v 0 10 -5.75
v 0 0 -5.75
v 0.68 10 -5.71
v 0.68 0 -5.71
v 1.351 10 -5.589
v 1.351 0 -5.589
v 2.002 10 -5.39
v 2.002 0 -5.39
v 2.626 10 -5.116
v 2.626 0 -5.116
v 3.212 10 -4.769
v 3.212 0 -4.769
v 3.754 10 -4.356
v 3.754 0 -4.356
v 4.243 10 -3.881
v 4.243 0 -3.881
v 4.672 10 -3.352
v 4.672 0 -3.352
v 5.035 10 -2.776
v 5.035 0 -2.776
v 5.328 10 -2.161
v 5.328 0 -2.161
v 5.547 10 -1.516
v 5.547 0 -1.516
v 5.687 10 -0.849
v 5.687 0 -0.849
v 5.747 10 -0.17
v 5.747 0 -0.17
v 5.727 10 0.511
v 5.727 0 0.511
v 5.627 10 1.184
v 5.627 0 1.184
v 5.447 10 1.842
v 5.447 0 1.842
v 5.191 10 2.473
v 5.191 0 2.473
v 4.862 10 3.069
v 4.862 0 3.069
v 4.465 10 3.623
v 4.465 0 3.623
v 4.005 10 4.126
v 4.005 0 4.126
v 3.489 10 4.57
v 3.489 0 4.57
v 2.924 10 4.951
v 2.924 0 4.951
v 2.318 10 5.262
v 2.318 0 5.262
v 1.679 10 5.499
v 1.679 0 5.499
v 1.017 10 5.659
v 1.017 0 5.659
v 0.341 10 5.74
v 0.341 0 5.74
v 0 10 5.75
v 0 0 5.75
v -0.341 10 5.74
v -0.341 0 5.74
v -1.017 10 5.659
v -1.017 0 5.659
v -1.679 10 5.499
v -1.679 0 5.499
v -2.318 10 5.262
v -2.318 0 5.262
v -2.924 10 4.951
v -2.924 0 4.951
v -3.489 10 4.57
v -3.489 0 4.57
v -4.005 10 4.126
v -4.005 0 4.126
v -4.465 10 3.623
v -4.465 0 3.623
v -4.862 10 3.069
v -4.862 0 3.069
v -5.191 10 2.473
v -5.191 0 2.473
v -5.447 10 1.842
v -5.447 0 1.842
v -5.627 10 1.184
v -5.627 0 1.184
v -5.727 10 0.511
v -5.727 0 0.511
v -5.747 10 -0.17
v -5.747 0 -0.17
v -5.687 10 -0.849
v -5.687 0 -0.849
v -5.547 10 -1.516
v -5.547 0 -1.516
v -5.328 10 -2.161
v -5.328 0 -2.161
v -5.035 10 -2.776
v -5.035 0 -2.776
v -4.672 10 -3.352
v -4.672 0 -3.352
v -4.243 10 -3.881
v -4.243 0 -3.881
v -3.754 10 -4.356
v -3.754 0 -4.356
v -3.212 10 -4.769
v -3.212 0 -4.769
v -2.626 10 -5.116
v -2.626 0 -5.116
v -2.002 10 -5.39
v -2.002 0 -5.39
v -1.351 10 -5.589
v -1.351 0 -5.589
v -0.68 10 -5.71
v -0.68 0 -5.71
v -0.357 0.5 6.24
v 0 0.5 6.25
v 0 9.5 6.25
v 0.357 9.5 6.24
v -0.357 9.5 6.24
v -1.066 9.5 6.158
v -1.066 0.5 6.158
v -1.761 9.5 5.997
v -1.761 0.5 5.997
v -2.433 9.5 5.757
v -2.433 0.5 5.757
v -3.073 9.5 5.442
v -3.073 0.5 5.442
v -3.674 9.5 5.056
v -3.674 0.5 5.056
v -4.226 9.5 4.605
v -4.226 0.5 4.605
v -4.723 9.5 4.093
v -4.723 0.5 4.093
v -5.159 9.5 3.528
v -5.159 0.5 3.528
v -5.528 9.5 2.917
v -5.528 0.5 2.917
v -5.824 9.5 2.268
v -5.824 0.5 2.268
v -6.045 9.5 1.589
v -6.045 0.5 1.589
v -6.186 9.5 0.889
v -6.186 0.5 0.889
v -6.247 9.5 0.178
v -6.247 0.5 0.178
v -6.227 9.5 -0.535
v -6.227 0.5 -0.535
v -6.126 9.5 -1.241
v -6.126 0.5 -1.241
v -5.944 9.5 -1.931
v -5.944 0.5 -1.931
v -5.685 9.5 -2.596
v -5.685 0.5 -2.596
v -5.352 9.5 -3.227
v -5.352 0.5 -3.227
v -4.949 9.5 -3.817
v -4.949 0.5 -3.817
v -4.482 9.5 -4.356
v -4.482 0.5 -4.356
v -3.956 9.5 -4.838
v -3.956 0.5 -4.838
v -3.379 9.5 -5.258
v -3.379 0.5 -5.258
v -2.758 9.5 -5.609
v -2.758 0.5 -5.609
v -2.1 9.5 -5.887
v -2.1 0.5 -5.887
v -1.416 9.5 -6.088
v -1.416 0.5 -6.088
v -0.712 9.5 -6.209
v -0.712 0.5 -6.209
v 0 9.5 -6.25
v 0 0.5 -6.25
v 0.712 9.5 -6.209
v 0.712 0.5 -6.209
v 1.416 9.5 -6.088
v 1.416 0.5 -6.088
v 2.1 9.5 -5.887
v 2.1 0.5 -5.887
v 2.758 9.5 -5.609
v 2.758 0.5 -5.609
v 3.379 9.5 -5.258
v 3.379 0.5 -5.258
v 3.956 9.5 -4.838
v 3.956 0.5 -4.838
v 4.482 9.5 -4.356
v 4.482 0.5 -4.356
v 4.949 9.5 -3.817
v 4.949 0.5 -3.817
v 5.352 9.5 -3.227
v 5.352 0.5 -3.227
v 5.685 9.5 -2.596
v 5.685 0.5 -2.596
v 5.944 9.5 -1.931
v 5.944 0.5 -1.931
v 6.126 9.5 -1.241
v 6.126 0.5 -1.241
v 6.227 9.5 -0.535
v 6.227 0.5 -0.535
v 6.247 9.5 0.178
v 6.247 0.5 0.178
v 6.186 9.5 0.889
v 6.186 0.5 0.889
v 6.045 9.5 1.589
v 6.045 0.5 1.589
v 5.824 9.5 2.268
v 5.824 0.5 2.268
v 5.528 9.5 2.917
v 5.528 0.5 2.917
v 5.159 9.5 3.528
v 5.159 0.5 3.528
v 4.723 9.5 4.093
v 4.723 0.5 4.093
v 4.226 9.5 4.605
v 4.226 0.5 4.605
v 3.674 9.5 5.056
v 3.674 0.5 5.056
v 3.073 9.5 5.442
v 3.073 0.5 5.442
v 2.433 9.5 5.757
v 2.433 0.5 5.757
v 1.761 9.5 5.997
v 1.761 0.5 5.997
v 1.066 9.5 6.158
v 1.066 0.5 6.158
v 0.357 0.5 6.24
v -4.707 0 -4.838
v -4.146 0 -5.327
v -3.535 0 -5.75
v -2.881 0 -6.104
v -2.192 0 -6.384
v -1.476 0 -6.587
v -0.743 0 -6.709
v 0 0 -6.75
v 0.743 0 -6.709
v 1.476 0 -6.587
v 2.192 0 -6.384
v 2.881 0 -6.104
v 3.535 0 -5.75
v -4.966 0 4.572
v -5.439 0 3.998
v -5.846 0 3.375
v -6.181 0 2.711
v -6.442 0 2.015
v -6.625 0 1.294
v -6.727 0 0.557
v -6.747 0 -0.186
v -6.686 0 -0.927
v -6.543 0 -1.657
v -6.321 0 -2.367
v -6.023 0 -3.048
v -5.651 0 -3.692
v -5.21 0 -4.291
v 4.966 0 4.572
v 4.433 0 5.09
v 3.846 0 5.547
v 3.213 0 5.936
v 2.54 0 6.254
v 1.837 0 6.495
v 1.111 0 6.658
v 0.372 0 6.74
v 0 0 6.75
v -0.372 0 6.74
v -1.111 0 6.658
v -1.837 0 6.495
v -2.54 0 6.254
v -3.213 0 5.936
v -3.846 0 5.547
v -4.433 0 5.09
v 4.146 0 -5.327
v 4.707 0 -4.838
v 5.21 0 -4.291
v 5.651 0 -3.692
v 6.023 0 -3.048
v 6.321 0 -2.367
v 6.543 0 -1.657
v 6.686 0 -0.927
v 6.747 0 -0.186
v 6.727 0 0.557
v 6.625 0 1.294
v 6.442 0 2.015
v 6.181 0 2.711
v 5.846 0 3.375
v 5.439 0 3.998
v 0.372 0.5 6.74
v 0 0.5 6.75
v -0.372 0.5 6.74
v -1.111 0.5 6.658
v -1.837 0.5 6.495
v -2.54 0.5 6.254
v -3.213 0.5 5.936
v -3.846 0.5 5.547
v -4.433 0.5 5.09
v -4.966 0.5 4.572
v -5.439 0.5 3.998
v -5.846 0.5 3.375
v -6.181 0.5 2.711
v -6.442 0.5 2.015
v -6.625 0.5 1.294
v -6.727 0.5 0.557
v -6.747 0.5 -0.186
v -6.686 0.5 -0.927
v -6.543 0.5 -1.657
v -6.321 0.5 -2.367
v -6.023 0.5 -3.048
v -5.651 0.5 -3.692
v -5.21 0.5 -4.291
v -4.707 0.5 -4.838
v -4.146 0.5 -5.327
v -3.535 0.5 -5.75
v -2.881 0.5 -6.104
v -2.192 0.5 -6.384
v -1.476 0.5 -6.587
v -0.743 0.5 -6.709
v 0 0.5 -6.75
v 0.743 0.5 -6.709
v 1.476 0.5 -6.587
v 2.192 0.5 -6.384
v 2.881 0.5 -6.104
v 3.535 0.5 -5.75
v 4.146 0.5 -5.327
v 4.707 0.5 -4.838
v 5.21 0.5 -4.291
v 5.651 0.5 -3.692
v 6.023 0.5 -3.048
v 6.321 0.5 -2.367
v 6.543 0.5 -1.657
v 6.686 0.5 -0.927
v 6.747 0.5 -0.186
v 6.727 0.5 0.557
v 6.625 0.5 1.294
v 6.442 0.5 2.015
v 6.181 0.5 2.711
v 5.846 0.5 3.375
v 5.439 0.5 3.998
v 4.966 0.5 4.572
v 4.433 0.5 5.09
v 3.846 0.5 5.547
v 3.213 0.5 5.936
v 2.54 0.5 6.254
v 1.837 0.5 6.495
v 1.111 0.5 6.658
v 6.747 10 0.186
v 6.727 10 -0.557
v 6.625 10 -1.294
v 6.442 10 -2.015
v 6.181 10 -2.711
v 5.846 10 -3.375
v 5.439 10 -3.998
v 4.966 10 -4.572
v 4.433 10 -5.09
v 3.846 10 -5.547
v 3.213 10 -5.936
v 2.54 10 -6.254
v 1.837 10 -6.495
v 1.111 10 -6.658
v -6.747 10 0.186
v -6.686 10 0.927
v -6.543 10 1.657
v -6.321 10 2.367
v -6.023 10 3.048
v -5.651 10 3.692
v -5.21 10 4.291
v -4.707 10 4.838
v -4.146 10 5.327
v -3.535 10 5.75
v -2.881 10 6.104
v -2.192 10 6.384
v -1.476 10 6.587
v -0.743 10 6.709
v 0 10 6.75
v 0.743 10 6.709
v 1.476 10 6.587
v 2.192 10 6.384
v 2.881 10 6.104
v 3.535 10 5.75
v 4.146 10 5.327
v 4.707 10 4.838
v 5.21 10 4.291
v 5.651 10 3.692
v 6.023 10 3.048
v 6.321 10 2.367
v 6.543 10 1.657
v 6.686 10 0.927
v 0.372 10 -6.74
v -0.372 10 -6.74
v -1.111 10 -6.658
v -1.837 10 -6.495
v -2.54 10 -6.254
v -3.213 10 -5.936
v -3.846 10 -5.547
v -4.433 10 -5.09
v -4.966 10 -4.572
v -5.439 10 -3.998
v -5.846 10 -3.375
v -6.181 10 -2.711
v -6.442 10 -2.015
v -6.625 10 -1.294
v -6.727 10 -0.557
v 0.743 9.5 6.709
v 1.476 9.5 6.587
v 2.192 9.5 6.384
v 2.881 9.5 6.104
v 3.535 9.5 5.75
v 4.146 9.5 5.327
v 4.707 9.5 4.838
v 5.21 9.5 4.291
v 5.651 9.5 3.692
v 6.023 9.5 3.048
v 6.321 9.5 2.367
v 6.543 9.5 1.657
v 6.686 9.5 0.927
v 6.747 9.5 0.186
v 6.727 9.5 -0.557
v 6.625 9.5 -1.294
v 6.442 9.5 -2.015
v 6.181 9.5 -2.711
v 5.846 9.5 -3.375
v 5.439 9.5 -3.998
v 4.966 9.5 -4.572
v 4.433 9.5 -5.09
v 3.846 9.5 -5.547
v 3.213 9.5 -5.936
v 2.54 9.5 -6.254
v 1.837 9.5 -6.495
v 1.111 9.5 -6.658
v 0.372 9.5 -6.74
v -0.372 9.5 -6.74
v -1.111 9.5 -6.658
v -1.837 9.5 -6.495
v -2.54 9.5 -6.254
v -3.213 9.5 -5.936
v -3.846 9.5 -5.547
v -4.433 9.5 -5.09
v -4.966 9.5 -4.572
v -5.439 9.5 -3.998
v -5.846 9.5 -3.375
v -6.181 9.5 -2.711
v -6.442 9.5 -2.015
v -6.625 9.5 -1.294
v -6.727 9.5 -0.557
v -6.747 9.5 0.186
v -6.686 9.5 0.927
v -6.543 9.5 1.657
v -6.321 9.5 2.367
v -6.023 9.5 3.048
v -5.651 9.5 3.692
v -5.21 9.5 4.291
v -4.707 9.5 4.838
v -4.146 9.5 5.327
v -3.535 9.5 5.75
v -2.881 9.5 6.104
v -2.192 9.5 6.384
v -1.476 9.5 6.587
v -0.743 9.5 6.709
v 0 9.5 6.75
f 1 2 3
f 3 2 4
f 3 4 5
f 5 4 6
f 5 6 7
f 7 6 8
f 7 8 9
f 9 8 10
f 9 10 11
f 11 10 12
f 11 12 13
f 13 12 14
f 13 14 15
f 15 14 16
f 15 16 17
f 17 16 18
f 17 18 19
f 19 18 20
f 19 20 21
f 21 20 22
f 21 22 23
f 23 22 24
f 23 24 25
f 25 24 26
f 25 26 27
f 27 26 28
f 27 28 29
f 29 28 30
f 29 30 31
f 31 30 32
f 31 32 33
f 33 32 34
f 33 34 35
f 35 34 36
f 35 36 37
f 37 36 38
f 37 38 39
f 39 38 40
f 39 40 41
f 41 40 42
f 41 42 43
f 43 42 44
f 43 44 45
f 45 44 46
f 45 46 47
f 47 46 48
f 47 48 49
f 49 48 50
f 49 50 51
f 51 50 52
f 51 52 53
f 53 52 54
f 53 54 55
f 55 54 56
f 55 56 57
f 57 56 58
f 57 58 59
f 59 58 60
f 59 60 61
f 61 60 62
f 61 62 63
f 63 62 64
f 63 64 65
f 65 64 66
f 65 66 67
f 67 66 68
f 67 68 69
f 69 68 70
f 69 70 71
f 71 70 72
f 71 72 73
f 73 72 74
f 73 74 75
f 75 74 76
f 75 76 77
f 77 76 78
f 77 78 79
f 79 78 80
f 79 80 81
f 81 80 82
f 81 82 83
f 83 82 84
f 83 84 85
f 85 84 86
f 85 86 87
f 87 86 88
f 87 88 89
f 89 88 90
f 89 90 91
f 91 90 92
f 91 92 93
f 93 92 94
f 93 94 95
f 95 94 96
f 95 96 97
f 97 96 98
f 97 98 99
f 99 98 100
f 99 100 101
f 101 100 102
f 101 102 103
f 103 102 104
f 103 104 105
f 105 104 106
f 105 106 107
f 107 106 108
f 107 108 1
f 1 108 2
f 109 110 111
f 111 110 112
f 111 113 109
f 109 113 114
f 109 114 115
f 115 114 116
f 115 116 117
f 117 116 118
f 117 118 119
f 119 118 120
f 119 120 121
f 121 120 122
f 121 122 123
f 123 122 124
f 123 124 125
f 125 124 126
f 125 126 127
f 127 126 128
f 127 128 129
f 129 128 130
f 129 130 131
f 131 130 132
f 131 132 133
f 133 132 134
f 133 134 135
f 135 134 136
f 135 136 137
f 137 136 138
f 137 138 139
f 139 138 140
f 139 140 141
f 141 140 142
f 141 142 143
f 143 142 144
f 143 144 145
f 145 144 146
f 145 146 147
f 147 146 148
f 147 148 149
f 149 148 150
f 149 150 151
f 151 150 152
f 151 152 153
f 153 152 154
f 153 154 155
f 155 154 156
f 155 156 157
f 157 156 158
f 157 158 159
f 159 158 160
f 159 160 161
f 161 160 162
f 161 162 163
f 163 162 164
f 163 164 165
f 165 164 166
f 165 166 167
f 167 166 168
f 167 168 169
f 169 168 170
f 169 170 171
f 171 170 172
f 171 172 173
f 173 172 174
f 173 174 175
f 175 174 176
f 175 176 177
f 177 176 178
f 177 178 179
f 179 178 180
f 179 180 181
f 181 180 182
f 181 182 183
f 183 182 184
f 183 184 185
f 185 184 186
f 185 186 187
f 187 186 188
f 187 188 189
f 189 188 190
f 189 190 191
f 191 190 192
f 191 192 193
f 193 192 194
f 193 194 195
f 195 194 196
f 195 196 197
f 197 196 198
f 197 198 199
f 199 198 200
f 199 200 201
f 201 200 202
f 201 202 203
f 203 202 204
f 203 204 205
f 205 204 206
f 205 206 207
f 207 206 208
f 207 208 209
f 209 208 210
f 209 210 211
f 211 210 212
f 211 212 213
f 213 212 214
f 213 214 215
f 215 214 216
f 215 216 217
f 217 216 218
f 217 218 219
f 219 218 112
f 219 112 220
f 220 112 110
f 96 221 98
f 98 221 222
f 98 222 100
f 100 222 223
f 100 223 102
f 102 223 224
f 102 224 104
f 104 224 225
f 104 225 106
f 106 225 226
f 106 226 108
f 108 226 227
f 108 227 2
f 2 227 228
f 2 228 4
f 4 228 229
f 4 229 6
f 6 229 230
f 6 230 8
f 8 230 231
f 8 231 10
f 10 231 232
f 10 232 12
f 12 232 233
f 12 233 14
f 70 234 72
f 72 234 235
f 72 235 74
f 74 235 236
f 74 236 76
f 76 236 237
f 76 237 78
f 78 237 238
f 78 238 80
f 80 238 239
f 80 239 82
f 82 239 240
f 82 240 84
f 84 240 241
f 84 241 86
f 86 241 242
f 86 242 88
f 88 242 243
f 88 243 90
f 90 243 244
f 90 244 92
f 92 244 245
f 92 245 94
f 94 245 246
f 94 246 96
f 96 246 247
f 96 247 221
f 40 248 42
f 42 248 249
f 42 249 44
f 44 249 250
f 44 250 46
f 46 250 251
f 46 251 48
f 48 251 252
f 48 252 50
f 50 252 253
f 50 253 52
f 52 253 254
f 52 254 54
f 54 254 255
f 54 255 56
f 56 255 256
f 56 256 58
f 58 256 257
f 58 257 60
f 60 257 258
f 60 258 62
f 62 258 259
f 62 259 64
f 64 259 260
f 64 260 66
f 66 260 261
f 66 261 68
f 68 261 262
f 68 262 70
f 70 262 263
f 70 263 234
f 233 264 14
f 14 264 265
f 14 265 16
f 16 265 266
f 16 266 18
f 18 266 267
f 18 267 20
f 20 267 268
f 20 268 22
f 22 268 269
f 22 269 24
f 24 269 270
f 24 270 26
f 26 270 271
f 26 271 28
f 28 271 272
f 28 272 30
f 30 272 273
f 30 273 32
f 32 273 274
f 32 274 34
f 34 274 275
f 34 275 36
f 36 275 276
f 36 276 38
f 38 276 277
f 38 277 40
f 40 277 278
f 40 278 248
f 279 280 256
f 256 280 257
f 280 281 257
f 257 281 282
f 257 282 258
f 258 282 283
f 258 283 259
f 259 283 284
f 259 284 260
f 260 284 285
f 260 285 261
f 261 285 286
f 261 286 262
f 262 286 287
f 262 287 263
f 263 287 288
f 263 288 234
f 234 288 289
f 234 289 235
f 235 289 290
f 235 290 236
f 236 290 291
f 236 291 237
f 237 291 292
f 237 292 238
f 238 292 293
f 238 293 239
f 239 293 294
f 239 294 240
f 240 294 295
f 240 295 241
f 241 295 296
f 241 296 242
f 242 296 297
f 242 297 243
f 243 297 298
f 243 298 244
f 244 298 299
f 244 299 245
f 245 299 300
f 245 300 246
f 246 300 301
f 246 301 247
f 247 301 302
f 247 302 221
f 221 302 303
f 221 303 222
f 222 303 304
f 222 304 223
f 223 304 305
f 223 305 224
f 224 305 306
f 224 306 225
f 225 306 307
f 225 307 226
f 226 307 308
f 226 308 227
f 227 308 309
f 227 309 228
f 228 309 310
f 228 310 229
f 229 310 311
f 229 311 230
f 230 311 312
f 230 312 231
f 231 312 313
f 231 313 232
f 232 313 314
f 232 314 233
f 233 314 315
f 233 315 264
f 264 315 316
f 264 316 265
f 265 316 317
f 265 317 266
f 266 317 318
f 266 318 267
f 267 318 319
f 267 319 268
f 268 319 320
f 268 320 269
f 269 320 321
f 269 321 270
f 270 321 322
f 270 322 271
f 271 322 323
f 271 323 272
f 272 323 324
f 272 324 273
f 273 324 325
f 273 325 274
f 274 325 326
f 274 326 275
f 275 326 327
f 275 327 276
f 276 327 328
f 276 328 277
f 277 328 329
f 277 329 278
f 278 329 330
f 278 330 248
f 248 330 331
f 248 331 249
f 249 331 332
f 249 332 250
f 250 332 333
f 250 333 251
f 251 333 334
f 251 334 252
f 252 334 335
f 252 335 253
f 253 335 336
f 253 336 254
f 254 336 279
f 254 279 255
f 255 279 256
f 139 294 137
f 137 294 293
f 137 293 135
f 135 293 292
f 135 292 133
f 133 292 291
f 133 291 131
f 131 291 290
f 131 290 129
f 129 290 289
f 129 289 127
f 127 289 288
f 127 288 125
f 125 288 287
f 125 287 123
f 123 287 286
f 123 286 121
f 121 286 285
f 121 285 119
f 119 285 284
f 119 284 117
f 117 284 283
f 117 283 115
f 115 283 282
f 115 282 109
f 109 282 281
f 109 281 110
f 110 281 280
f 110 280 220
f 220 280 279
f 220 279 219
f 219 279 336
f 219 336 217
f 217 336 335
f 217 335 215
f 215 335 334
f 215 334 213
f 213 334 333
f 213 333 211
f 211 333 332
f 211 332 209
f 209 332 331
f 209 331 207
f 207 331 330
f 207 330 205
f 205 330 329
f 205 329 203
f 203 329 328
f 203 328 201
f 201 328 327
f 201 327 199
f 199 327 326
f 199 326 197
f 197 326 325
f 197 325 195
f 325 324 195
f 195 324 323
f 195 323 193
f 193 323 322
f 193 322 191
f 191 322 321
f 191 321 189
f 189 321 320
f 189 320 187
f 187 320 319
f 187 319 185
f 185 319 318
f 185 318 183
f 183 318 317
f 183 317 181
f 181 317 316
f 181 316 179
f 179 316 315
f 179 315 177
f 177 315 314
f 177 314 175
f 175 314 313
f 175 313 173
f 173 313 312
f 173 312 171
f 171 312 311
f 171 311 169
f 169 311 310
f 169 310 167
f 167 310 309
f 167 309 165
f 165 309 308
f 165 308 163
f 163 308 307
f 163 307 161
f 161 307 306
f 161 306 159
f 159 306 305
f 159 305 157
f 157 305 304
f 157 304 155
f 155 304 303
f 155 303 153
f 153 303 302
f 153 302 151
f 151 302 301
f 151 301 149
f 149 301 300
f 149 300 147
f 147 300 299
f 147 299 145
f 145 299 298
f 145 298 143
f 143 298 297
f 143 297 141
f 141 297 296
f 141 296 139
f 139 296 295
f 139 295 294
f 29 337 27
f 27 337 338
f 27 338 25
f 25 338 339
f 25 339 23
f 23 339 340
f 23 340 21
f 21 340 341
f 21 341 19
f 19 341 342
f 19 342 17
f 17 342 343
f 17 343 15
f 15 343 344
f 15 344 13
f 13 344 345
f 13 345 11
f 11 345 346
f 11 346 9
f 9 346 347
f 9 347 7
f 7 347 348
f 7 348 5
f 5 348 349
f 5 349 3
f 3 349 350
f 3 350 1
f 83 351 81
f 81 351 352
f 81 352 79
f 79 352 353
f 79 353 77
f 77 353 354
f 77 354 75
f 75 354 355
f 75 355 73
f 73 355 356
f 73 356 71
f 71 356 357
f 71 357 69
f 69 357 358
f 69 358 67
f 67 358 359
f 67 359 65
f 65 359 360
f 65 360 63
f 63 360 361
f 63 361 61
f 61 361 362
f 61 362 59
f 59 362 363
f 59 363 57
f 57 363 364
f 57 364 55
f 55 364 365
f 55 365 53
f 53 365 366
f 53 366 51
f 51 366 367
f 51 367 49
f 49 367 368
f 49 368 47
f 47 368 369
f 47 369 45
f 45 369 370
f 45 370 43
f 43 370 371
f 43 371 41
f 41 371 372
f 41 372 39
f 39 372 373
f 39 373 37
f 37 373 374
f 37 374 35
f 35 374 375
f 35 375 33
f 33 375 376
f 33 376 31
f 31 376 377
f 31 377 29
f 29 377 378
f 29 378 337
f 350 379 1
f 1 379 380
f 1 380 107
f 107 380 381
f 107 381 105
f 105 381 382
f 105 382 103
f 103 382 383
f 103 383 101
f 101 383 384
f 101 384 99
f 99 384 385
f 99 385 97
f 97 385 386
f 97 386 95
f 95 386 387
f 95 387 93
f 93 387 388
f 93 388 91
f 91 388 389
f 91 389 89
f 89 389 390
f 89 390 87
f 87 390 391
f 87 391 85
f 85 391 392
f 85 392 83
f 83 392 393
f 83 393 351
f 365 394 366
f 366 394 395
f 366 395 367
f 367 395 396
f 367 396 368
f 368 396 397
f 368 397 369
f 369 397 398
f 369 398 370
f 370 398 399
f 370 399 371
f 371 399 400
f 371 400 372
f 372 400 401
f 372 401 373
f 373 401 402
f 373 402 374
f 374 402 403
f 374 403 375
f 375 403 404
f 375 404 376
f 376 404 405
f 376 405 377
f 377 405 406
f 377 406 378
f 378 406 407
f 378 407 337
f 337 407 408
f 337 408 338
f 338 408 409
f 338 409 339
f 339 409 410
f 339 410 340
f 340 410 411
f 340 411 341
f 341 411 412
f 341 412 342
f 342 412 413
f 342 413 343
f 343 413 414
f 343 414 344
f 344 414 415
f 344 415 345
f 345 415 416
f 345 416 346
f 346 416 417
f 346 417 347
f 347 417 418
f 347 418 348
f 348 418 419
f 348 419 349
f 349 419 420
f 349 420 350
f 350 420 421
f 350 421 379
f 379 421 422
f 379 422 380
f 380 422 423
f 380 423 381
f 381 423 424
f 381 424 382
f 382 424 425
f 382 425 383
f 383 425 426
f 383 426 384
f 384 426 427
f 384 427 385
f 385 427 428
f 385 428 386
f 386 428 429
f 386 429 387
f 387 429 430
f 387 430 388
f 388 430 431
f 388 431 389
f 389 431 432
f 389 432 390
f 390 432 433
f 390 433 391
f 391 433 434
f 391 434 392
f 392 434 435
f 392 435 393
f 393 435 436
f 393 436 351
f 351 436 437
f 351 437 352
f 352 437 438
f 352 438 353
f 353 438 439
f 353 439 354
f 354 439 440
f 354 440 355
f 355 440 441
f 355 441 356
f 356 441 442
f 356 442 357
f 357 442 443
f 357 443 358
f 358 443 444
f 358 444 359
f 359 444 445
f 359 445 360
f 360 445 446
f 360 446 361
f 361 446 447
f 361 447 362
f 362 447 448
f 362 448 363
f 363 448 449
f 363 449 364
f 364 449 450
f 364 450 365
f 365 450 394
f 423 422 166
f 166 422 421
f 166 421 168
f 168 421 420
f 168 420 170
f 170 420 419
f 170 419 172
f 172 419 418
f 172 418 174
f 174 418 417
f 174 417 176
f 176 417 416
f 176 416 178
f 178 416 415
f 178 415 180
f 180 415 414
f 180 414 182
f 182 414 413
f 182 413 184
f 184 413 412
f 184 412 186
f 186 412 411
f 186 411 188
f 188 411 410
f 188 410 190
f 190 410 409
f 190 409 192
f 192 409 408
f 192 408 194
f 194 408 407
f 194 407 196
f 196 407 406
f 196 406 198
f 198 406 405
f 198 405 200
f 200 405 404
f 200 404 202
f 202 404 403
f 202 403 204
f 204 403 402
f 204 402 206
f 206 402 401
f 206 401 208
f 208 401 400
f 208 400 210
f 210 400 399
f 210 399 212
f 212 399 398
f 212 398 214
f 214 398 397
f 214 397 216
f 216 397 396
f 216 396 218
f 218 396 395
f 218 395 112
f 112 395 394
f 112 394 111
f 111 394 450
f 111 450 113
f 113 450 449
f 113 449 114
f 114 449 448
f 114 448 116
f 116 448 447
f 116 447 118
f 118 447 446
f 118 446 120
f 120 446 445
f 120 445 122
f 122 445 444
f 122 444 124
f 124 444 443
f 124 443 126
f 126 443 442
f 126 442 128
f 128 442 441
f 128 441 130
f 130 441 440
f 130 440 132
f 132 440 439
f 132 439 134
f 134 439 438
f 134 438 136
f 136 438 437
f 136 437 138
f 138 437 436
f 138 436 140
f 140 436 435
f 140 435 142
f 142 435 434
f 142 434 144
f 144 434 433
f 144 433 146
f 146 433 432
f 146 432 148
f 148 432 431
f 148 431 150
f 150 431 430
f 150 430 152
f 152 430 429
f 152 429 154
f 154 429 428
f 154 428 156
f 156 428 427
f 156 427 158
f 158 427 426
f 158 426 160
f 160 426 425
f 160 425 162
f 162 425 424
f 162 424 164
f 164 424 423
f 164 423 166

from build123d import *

# Parameters (mm, degrees)
SKETCH1_R           = 6.25
SKETCH1_R_2         = 5.75
BOSS_EXTRUDE1_DEPTH = 5
SKETCH1_3_R         = 6.75
SKETCH1_3_R_2       = 6.25
BOSS_EXTRUDE2_DEPTH = 0.5


with BuildPart() as part:
    # Sketch1 → Boss-Extrude1 (new body)
    with BuildSketch(Plane(origin=(0, 0, 0), x_dir=(1, 0, 0), z_dir=(0, 1, 0))):
        Circle(SKETCH1_R)
        Circle(SKETCH1_R_2, mode=Mode.SUBTRACT)
    boss_extrude1 = extrude(amount=BOSS_EXTRUDE1_DEPTH)

    # Sketch1<3> → Boss-Extrude2 (add)
    with BuildSketch(Plane(origin=(0, 0, 0), x_dir=(1, 0, 0), z_dir=(0, 1, 0))):
        Circle(SKETCH1_3_R)
        Circle(SKETCH1_3_R_2, mode=Mode.SUBTRACT)
    boss_extrude2 = extrude(amount=BOSS_EXTRUDE2_DEPTH)

    # Mirror1: Boss-Extrude1, Boss-Extrude2 across plane
    add(boss_extrude1.mirror(Plane.ZX.offset(5)))
    add(boss_extrude2.mirror(Plane.ZX.offset(5)))


solid = part.part
